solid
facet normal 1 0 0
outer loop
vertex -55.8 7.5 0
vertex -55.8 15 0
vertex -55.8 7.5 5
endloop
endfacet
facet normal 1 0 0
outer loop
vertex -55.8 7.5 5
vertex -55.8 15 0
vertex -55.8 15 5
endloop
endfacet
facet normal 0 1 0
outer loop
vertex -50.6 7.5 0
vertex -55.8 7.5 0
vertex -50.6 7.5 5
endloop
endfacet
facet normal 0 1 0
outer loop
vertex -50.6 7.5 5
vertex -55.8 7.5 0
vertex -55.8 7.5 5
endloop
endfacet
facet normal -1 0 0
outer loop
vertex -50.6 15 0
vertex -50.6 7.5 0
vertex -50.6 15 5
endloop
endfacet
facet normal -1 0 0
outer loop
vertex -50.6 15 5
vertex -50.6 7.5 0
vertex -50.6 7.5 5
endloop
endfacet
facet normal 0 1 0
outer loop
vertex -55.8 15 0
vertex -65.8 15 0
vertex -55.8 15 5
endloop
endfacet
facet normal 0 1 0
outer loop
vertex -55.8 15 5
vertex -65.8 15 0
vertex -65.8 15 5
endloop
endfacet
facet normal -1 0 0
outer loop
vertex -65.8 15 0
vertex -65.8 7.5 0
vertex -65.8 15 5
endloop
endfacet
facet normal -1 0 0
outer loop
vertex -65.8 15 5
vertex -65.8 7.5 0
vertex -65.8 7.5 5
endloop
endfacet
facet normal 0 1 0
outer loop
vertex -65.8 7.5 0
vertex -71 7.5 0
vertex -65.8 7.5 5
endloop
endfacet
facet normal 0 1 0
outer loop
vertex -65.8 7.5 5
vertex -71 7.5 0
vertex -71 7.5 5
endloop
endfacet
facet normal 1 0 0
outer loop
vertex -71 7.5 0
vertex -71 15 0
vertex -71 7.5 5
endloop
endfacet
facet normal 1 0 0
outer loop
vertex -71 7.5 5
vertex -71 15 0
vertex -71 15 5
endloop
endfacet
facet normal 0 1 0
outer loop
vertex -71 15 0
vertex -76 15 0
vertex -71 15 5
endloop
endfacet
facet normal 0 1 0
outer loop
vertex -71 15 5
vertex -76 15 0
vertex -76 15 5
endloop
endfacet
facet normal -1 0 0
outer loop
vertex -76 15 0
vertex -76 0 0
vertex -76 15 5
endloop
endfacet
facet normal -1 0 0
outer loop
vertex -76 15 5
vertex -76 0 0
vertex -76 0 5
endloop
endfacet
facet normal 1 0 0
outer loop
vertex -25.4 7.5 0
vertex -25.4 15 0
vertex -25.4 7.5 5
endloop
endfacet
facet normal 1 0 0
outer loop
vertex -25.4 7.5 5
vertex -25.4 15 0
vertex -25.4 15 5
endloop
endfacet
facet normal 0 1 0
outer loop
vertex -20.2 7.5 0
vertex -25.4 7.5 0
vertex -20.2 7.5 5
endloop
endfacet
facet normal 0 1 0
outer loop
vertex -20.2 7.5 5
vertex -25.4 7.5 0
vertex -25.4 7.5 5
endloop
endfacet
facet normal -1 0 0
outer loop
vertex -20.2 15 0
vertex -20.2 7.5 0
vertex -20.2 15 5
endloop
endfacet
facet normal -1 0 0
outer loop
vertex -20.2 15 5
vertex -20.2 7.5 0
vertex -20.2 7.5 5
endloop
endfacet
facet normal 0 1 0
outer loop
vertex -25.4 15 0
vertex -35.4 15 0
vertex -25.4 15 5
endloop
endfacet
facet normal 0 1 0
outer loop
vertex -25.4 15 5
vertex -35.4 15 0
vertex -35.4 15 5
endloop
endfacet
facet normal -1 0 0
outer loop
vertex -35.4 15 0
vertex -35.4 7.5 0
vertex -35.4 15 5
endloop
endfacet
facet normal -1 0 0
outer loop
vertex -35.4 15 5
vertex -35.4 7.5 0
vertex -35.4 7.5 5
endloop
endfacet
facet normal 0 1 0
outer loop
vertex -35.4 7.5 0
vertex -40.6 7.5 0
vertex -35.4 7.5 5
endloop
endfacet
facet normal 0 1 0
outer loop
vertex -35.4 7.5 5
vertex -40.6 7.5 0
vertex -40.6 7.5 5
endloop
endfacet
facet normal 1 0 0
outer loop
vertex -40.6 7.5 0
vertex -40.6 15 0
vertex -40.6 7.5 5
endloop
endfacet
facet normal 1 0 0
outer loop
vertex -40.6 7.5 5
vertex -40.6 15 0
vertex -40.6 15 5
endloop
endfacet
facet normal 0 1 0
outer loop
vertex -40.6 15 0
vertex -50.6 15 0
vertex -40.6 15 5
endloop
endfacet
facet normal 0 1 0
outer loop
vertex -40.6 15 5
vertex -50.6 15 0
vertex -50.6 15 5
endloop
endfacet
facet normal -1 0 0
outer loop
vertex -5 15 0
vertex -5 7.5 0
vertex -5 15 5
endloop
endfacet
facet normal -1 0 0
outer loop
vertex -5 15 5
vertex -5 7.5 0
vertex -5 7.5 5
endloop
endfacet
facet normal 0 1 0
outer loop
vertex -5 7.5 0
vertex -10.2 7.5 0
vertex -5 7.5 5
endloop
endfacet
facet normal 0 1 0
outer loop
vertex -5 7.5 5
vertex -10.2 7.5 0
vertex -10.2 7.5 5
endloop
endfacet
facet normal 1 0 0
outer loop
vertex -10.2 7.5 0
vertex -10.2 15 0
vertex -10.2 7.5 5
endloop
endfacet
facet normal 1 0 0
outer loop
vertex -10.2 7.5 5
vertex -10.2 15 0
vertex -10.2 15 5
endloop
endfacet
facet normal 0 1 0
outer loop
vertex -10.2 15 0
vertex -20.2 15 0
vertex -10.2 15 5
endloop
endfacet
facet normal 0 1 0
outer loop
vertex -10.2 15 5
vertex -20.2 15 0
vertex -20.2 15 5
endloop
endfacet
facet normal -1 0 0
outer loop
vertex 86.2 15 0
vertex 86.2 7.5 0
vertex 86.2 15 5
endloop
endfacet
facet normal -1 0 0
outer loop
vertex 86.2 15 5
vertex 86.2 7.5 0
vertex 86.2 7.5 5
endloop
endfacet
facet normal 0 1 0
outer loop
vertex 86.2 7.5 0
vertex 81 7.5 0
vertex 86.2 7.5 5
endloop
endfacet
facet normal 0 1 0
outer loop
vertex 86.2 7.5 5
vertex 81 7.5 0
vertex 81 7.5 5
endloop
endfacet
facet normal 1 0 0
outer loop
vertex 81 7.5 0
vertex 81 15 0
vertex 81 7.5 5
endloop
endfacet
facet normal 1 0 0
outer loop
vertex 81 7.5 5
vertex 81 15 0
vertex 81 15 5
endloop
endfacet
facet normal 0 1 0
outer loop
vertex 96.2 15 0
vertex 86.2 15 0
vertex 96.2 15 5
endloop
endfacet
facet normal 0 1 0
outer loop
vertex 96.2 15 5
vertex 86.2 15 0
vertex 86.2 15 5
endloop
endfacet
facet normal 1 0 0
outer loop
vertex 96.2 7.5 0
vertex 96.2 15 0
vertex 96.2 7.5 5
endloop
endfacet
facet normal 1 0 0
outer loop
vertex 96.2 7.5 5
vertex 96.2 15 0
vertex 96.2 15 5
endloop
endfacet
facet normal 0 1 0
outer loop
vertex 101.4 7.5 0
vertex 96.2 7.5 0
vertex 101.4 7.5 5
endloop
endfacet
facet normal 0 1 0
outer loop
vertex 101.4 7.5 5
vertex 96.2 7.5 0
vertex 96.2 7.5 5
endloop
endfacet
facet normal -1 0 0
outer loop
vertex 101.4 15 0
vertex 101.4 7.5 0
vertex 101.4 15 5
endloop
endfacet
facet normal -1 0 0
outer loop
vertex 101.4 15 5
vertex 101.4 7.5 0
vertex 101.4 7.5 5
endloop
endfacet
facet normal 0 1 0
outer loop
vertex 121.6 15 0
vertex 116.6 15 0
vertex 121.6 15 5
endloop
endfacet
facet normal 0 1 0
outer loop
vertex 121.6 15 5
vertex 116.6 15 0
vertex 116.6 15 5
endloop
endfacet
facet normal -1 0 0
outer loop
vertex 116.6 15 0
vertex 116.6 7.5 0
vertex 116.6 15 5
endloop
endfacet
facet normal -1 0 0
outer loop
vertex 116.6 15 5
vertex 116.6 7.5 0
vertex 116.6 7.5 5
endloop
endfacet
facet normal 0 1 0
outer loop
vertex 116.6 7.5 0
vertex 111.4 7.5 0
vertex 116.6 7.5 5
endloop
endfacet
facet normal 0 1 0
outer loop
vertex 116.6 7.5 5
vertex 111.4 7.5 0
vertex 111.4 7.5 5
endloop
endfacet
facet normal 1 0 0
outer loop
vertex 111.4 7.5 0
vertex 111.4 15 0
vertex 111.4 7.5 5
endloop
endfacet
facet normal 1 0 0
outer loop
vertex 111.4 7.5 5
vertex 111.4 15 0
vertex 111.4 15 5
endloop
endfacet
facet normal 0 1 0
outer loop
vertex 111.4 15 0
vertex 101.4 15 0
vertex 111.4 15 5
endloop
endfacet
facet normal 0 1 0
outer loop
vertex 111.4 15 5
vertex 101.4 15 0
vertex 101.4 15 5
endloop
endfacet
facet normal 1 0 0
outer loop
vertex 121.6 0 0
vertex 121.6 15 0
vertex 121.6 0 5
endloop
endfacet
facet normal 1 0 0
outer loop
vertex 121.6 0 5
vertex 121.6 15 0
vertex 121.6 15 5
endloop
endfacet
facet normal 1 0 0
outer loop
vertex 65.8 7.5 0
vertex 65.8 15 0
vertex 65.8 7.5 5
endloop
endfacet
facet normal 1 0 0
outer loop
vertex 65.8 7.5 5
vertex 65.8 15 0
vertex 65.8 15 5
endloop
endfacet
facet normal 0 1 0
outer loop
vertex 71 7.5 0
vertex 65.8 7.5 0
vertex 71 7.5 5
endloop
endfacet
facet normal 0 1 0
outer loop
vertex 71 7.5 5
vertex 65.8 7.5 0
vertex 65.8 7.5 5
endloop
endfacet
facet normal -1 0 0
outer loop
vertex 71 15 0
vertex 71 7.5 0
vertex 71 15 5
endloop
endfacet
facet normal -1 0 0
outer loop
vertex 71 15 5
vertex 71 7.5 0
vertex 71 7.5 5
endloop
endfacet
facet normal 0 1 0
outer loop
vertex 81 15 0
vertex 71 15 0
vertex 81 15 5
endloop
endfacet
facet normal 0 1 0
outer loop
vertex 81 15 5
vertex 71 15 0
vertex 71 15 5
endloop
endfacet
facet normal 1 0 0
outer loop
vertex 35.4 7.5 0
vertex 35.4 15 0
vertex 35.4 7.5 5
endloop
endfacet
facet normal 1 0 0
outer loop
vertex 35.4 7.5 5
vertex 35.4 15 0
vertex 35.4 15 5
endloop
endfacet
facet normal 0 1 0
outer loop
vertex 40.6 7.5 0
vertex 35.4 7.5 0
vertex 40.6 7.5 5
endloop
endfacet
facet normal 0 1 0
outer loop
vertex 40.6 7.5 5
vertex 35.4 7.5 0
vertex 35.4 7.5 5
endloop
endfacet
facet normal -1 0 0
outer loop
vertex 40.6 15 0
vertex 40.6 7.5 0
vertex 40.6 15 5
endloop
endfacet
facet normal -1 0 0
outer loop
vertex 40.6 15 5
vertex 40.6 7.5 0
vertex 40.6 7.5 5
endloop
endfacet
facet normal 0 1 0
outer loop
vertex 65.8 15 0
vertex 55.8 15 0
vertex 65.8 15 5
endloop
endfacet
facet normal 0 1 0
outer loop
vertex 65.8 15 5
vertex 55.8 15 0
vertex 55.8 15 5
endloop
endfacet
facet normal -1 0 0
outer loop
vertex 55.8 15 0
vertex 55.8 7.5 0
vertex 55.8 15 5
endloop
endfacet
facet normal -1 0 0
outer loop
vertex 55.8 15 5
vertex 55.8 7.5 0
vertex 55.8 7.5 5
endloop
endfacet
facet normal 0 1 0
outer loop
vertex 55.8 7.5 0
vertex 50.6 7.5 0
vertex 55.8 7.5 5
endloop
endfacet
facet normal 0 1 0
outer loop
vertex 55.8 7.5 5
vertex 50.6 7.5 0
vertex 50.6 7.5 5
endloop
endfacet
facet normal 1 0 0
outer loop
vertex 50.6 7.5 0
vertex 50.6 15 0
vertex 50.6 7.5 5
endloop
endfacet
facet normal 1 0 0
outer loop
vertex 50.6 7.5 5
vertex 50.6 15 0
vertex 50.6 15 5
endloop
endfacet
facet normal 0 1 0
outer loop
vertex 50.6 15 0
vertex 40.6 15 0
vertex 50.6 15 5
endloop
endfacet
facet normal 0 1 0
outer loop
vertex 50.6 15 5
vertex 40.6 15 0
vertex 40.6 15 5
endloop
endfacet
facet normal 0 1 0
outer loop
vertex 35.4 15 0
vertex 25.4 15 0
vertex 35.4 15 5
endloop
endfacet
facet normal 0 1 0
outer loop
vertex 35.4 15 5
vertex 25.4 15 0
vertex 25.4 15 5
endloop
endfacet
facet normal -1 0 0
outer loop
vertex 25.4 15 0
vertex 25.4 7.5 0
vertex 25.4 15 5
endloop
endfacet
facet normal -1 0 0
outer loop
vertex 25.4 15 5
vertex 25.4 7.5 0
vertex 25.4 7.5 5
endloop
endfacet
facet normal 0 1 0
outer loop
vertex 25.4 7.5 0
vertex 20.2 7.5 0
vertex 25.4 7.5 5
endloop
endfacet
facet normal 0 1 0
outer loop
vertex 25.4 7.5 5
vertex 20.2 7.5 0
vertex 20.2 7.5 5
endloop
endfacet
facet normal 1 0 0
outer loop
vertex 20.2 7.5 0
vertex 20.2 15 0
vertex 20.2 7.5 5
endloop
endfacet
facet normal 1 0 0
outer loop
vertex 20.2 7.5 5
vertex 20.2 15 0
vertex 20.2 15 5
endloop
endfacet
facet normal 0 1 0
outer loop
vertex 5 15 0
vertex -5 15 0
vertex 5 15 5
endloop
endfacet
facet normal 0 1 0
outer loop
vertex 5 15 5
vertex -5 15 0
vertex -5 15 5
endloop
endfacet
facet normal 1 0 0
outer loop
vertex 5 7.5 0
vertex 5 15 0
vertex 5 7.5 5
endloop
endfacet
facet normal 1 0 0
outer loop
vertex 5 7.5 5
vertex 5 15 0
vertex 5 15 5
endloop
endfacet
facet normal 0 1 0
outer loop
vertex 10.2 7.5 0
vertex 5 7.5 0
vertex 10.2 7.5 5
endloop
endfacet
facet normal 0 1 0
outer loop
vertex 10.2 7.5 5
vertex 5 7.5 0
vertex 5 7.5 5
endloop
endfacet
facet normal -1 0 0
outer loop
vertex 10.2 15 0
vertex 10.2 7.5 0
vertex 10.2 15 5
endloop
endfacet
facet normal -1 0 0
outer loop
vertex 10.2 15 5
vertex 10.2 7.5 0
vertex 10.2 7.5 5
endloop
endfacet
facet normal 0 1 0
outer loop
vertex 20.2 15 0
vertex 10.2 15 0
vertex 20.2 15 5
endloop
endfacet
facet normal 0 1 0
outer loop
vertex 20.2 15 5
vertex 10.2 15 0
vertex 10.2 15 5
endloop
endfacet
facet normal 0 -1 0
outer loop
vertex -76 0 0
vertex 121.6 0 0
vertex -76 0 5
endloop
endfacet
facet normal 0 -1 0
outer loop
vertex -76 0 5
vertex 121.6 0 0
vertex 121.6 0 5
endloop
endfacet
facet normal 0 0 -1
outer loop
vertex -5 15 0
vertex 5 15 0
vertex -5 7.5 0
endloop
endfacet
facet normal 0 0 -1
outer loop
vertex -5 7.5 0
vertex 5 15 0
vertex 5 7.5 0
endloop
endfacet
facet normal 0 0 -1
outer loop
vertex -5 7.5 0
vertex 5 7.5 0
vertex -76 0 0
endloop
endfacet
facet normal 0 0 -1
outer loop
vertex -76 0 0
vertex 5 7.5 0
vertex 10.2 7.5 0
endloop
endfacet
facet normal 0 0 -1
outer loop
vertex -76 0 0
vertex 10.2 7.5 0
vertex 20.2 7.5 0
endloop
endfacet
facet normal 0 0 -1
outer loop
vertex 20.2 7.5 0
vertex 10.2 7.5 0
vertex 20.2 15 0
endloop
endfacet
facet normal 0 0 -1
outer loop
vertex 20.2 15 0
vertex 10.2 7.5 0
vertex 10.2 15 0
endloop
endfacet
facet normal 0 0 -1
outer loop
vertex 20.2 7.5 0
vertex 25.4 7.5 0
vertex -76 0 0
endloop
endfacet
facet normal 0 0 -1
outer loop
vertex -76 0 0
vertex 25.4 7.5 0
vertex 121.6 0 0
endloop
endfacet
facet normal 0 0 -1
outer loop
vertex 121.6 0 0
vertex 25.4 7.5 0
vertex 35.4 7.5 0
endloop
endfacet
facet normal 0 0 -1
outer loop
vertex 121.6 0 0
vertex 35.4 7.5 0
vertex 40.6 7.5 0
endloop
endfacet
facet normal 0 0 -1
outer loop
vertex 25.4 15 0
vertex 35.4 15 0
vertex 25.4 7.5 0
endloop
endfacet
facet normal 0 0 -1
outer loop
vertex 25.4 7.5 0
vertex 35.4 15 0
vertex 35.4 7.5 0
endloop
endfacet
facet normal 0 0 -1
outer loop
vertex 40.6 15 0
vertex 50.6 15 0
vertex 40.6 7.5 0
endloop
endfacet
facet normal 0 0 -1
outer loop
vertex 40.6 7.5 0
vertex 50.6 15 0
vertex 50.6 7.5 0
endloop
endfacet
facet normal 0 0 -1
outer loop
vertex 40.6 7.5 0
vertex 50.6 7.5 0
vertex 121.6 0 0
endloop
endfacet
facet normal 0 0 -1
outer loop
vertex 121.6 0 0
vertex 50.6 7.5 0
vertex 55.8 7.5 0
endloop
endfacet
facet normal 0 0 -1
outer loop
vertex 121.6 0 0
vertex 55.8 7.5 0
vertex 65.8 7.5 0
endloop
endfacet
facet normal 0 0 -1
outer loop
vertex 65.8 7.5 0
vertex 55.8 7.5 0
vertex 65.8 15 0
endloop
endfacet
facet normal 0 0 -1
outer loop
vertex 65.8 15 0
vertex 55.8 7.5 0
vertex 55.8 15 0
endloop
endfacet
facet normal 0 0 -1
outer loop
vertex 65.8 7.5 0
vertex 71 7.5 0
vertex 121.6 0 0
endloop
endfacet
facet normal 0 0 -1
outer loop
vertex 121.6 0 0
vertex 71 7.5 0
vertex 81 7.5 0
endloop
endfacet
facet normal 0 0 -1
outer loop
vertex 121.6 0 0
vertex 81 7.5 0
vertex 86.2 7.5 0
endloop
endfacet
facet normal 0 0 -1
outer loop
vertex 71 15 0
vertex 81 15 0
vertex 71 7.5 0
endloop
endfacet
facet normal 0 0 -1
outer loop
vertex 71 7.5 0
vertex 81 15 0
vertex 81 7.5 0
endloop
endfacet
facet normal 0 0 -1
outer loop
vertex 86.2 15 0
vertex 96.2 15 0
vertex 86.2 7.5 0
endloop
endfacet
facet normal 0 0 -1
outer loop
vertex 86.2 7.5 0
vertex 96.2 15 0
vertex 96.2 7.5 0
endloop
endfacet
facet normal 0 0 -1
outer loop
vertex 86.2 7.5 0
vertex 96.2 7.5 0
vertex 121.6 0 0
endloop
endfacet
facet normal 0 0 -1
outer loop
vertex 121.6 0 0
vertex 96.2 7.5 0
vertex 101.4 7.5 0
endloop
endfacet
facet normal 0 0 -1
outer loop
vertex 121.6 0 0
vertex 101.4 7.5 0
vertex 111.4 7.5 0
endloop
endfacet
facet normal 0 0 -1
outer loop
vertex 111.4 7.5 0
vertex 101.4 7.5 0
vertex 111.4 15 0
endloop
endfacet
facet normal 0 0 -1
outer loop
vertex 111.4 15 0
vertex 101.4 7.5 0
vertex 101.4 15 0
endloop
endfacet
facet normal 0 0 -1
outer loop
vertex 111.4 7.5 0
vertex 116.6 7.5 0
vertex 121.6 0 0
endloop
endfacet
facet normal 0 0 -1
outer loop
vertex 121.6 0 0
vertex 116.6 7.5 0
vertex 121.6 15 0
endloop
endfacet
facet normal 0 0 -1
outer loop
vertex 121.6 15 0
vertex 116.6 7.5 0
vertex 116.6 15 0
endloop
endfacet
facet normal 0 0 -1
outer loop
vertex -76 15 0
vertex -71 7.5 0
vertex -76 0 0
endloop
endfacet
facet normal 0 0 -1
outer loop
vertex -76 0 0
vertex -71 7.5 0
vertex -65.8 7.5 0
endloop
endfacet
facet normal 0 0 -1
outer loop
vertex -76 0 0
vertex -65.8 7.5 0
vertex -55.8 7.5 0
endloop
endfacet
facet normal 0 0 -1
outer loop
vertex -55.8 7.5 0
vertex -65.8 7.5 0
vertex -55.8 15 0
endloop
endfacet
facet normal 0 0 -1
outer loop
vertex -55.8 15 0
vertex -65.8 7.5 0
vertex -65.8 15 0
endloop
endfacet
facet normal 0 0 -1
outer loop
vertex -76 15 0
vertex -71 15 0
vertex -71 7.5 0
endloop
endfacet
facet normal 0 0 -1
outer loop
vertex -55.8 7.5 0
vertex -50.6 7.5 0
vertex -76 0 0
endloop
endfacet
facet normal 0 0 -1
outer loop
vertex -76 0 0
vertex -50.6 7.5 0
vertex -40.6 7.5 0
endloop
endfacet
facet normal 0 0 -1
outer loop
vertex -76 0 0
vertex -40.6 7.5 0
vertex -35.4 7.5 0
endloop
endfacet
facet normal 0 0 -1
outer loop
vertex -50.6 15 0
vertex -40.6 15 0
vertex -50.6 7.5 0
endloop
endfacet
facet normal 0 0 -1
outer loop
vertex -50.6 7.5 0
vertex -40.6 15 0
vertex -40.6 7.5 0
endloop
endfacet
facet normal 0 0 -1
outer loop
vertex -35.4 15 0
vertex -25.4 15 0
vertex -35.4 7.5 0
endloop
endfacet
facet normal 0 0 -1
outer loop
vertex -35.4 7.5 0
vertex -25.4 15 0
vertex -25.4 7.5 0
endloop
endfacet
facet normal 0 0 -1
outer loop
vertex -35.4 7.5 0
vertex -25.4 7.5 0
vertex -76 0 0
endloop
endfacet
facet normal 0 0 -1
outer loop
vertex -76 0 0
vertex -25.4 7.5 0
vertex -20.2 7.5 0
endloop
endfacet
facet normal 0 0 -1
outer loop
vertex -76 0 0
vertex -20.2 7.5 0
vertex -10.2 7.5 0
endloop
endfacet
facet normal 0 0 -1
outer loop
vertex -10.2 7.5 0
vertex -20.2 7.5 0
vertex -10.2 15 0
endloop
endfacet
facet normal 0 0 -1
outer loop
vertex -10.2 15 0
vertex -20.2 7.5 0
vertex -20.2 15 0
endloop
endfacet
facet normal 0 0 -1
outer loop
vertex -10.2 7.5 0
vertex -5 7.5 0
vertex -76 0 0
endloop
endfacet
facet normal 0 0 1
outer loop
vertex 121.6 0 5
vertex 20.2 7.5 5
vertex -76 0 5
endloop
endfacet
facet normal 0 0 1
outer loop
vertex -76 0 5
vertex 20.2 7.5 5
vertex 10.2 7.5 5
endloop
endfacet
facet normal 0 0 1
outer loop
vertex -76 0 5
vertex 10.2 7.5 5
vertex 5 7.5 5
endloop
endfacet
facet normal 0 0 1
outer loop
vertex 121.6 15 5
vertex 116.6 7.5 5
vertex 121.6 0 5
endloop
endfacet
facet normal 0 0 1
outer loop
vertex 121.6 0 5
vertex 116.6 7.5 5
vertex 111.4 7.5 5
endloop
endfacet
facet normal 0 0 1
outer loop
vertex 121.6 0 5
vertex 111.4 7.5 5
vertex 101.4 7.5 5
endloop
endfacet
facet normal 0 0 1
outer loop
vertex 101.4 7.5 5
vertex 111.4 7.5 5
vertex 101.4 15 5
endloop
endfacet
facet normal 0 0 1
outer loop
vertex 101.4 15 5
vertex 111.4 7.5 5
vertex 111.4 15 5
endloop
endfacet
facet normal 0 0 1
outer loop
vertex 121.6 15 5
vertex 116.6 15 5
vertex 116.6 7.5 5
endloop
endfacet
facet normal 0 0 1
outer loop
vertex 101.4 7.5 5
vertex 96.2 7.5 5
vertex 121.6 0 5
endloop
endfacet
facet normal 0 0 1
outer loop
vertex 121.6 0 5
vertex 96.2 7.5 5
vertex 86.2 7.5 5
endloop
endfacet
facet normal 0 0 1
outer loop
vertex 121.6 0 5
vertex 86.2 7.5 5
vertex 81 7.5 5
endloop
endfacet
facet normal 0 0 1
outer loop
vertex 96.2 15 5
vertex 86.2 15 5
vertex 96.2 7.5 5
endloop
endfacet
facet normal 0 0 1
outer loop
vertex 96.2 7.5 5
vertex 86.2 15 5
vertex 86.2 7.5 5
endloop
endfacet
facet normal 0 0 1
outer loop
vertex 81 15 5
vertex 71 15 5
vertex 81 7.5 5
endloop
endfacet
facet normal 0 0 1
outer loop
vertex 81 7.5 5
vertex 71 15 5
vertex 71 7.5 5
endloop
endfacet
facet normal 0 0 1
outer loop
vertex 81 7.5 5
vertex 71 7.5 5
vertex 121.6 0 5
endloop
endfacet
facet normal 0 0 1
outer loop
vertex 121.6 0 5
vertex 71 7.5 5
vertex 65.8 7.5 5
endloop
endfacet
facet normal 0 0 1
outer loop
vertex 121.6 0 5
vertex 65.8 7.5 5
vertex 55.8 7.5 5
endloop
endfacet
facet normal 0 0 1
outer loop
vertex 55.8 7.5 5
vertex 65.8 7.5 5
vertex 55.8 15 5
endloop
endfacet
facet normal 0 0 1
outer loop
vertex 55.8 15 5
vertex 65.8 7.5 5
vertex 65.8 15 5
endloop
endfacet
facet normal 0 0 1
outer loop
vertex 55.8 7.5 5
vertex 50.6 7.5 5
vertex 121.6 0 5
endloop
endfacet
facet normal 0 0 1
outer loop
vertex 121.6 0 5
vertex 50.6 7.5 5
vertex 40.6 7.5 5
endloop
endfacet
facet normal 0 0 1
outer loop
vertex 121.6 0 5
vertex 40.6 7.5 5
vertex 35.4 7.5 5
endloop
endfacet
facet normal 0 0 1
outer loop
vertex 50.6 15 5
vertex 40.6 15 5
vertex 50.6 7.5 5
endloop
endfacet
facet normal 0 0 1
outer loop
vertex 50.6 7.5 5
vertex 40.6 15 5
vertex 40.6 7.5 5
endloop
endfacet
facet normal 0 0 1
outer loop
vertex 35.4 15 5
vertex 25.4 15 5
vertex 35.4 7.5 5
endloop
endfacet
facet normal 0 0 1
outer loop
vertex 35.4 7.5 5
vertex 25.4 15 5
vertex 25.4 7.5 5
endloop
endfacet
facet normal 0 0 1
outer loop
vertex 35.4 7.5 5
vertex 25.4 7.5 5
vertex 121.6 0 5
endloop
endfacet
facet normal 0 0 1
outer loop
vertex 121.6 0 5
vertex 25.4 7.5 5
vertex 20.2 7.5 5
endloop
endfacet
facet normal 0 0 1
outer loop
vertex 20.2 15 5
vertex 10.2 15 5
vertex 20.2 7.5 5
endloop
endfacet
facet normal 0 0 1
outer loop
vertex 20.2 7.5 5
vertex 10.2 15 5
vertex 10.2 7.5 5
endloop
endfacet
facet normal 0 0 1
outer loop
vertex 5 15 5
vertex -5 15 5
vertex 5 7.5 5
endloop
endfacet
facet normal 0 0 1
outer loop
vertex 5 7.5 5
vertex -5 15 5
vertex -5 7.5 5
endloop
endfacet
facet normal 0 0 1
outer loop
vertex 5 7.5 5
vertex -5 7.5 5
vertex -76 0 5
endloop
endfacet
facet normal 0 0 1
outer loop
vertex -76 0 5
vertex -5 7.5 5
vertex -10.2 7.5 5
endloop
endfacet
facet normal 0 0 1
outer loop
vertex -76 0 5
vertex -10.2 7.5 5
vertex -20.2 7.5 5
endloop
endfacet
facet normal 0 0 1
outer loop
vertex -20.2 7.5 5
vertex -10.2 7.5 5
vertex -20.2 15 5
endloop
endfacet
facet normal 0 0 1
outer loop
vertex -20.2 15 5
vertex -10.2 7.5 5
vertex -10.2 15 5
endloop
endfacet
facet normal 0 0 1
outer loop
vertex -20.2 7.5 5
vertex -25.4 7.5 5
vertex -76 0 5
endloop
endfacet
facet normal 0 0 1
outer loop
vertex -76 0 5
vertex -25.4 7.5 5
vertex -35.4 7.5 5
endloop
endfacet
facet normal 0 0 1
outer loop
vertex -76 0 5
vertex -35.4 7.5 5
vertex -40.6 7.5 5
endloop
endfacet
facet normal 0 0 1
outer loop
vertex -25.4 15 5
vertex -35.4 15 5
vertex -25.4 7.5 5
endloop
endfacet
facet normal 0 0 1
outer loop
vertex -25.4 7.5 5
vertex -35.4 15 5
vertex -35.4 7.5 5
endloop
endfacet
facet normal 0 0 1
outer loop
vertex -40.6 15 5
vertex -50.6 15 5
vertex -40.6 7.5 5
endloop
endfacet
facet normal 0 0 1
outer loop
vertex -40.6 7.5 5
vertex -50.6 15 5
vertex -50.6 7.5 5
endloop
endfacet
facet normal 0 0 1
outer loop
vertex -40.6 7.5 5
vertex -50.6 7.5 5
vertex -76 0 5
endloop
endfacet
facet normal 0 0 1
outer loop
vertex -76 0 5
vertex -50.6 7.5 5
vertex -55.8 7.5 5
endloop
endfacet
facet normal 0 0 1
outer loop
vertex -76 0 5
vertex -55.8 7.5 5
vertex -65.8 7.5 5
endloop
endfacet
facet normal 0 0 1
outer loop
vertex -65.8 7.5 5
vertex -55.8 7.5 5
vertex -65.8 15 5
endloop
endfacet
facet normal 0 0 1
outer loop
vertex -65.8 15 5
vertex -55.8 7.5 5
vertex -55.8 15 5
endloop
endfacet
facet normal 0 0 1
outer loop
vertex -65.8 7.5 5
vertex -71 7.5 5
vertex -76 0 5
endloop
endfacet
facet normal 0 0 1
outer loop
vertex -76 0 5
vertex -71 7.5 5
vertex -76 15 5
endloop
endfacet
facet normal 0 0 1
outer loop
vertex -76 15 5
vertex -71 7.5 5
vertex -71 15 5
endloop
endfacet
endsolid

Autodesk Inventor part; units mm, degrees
ref_plane "YZ Plane" through (0, 0, 0) normal (1, 0, 0) x (0, 1, 0)
ref_plane "XZ Plane" through (0, 0, 0) normal (0, 1, 0) x (-1, 0, 0)
sketch "Sketch1" plane through (0, 0, 0) normal (0, 0, 1) x (1, 0, 0)
  line L0 (0, 0) -> (0, 15)
  line L1 (0, 15) -> (5, 15)
  line L2 (5, 15) -> (5, 7.5)
  line L3 (5, 7.5) -> (10.2, 7.5)
  line L4 (10.2, 7.5) -> (10.2, 15)
  line L5 (10.2, 15) -> (15.2, 15)
  line L6 (15.2, 15) -> (15.2, 0)
  line L7 (15.2, 0) -> (0, 0)
  dimension "d0" = 15
  dimension "d1" = 5.2
  dimension "d2" = 5
  dimension "d3" = 5
  dimension "d4" = 7.5
extrude "Extrusion1" add sketch "Sketch1" along normal blind 5
mirror "Mirror1" about plane through (15.2, 0, 0) normal (1, 0, 0) of "Extrusion1"
mirror "Mirror2" about plane through (30.4, 15, 0) normal (1, 0, 0) of "Extrusion1", "Mirror1"
mirror "Mirror3" about plane through (60.8, 15, 0) normal (1, 0, 0) of "Extrusion1", "Mirror1", "Mirror2"
mirror "Mirror4" about plane through (0, 15, 0) normal (-1, 0, 0) of "Extrusion1"
mirror "Mirror5" about plane through (-15.2, 0, 0) normal (-1, 0, 0) of "Extrusion1", "Mirror4"
ref_plane "Work Plane1" through (-30.4, 7.5, 0) normal (1, 0, 0) x (0, 0, -1)
mirror "Mirror6" about plane through (-30.4, 7.5, 0) normal (1, 0, 0) of "Extrusion1", "Mirror4"
ref_plane "Work Plane2" through (-30.4, 7.5, 0) normal (1, 0, 0) x (0, 0, -1)
properties part number "brace"
